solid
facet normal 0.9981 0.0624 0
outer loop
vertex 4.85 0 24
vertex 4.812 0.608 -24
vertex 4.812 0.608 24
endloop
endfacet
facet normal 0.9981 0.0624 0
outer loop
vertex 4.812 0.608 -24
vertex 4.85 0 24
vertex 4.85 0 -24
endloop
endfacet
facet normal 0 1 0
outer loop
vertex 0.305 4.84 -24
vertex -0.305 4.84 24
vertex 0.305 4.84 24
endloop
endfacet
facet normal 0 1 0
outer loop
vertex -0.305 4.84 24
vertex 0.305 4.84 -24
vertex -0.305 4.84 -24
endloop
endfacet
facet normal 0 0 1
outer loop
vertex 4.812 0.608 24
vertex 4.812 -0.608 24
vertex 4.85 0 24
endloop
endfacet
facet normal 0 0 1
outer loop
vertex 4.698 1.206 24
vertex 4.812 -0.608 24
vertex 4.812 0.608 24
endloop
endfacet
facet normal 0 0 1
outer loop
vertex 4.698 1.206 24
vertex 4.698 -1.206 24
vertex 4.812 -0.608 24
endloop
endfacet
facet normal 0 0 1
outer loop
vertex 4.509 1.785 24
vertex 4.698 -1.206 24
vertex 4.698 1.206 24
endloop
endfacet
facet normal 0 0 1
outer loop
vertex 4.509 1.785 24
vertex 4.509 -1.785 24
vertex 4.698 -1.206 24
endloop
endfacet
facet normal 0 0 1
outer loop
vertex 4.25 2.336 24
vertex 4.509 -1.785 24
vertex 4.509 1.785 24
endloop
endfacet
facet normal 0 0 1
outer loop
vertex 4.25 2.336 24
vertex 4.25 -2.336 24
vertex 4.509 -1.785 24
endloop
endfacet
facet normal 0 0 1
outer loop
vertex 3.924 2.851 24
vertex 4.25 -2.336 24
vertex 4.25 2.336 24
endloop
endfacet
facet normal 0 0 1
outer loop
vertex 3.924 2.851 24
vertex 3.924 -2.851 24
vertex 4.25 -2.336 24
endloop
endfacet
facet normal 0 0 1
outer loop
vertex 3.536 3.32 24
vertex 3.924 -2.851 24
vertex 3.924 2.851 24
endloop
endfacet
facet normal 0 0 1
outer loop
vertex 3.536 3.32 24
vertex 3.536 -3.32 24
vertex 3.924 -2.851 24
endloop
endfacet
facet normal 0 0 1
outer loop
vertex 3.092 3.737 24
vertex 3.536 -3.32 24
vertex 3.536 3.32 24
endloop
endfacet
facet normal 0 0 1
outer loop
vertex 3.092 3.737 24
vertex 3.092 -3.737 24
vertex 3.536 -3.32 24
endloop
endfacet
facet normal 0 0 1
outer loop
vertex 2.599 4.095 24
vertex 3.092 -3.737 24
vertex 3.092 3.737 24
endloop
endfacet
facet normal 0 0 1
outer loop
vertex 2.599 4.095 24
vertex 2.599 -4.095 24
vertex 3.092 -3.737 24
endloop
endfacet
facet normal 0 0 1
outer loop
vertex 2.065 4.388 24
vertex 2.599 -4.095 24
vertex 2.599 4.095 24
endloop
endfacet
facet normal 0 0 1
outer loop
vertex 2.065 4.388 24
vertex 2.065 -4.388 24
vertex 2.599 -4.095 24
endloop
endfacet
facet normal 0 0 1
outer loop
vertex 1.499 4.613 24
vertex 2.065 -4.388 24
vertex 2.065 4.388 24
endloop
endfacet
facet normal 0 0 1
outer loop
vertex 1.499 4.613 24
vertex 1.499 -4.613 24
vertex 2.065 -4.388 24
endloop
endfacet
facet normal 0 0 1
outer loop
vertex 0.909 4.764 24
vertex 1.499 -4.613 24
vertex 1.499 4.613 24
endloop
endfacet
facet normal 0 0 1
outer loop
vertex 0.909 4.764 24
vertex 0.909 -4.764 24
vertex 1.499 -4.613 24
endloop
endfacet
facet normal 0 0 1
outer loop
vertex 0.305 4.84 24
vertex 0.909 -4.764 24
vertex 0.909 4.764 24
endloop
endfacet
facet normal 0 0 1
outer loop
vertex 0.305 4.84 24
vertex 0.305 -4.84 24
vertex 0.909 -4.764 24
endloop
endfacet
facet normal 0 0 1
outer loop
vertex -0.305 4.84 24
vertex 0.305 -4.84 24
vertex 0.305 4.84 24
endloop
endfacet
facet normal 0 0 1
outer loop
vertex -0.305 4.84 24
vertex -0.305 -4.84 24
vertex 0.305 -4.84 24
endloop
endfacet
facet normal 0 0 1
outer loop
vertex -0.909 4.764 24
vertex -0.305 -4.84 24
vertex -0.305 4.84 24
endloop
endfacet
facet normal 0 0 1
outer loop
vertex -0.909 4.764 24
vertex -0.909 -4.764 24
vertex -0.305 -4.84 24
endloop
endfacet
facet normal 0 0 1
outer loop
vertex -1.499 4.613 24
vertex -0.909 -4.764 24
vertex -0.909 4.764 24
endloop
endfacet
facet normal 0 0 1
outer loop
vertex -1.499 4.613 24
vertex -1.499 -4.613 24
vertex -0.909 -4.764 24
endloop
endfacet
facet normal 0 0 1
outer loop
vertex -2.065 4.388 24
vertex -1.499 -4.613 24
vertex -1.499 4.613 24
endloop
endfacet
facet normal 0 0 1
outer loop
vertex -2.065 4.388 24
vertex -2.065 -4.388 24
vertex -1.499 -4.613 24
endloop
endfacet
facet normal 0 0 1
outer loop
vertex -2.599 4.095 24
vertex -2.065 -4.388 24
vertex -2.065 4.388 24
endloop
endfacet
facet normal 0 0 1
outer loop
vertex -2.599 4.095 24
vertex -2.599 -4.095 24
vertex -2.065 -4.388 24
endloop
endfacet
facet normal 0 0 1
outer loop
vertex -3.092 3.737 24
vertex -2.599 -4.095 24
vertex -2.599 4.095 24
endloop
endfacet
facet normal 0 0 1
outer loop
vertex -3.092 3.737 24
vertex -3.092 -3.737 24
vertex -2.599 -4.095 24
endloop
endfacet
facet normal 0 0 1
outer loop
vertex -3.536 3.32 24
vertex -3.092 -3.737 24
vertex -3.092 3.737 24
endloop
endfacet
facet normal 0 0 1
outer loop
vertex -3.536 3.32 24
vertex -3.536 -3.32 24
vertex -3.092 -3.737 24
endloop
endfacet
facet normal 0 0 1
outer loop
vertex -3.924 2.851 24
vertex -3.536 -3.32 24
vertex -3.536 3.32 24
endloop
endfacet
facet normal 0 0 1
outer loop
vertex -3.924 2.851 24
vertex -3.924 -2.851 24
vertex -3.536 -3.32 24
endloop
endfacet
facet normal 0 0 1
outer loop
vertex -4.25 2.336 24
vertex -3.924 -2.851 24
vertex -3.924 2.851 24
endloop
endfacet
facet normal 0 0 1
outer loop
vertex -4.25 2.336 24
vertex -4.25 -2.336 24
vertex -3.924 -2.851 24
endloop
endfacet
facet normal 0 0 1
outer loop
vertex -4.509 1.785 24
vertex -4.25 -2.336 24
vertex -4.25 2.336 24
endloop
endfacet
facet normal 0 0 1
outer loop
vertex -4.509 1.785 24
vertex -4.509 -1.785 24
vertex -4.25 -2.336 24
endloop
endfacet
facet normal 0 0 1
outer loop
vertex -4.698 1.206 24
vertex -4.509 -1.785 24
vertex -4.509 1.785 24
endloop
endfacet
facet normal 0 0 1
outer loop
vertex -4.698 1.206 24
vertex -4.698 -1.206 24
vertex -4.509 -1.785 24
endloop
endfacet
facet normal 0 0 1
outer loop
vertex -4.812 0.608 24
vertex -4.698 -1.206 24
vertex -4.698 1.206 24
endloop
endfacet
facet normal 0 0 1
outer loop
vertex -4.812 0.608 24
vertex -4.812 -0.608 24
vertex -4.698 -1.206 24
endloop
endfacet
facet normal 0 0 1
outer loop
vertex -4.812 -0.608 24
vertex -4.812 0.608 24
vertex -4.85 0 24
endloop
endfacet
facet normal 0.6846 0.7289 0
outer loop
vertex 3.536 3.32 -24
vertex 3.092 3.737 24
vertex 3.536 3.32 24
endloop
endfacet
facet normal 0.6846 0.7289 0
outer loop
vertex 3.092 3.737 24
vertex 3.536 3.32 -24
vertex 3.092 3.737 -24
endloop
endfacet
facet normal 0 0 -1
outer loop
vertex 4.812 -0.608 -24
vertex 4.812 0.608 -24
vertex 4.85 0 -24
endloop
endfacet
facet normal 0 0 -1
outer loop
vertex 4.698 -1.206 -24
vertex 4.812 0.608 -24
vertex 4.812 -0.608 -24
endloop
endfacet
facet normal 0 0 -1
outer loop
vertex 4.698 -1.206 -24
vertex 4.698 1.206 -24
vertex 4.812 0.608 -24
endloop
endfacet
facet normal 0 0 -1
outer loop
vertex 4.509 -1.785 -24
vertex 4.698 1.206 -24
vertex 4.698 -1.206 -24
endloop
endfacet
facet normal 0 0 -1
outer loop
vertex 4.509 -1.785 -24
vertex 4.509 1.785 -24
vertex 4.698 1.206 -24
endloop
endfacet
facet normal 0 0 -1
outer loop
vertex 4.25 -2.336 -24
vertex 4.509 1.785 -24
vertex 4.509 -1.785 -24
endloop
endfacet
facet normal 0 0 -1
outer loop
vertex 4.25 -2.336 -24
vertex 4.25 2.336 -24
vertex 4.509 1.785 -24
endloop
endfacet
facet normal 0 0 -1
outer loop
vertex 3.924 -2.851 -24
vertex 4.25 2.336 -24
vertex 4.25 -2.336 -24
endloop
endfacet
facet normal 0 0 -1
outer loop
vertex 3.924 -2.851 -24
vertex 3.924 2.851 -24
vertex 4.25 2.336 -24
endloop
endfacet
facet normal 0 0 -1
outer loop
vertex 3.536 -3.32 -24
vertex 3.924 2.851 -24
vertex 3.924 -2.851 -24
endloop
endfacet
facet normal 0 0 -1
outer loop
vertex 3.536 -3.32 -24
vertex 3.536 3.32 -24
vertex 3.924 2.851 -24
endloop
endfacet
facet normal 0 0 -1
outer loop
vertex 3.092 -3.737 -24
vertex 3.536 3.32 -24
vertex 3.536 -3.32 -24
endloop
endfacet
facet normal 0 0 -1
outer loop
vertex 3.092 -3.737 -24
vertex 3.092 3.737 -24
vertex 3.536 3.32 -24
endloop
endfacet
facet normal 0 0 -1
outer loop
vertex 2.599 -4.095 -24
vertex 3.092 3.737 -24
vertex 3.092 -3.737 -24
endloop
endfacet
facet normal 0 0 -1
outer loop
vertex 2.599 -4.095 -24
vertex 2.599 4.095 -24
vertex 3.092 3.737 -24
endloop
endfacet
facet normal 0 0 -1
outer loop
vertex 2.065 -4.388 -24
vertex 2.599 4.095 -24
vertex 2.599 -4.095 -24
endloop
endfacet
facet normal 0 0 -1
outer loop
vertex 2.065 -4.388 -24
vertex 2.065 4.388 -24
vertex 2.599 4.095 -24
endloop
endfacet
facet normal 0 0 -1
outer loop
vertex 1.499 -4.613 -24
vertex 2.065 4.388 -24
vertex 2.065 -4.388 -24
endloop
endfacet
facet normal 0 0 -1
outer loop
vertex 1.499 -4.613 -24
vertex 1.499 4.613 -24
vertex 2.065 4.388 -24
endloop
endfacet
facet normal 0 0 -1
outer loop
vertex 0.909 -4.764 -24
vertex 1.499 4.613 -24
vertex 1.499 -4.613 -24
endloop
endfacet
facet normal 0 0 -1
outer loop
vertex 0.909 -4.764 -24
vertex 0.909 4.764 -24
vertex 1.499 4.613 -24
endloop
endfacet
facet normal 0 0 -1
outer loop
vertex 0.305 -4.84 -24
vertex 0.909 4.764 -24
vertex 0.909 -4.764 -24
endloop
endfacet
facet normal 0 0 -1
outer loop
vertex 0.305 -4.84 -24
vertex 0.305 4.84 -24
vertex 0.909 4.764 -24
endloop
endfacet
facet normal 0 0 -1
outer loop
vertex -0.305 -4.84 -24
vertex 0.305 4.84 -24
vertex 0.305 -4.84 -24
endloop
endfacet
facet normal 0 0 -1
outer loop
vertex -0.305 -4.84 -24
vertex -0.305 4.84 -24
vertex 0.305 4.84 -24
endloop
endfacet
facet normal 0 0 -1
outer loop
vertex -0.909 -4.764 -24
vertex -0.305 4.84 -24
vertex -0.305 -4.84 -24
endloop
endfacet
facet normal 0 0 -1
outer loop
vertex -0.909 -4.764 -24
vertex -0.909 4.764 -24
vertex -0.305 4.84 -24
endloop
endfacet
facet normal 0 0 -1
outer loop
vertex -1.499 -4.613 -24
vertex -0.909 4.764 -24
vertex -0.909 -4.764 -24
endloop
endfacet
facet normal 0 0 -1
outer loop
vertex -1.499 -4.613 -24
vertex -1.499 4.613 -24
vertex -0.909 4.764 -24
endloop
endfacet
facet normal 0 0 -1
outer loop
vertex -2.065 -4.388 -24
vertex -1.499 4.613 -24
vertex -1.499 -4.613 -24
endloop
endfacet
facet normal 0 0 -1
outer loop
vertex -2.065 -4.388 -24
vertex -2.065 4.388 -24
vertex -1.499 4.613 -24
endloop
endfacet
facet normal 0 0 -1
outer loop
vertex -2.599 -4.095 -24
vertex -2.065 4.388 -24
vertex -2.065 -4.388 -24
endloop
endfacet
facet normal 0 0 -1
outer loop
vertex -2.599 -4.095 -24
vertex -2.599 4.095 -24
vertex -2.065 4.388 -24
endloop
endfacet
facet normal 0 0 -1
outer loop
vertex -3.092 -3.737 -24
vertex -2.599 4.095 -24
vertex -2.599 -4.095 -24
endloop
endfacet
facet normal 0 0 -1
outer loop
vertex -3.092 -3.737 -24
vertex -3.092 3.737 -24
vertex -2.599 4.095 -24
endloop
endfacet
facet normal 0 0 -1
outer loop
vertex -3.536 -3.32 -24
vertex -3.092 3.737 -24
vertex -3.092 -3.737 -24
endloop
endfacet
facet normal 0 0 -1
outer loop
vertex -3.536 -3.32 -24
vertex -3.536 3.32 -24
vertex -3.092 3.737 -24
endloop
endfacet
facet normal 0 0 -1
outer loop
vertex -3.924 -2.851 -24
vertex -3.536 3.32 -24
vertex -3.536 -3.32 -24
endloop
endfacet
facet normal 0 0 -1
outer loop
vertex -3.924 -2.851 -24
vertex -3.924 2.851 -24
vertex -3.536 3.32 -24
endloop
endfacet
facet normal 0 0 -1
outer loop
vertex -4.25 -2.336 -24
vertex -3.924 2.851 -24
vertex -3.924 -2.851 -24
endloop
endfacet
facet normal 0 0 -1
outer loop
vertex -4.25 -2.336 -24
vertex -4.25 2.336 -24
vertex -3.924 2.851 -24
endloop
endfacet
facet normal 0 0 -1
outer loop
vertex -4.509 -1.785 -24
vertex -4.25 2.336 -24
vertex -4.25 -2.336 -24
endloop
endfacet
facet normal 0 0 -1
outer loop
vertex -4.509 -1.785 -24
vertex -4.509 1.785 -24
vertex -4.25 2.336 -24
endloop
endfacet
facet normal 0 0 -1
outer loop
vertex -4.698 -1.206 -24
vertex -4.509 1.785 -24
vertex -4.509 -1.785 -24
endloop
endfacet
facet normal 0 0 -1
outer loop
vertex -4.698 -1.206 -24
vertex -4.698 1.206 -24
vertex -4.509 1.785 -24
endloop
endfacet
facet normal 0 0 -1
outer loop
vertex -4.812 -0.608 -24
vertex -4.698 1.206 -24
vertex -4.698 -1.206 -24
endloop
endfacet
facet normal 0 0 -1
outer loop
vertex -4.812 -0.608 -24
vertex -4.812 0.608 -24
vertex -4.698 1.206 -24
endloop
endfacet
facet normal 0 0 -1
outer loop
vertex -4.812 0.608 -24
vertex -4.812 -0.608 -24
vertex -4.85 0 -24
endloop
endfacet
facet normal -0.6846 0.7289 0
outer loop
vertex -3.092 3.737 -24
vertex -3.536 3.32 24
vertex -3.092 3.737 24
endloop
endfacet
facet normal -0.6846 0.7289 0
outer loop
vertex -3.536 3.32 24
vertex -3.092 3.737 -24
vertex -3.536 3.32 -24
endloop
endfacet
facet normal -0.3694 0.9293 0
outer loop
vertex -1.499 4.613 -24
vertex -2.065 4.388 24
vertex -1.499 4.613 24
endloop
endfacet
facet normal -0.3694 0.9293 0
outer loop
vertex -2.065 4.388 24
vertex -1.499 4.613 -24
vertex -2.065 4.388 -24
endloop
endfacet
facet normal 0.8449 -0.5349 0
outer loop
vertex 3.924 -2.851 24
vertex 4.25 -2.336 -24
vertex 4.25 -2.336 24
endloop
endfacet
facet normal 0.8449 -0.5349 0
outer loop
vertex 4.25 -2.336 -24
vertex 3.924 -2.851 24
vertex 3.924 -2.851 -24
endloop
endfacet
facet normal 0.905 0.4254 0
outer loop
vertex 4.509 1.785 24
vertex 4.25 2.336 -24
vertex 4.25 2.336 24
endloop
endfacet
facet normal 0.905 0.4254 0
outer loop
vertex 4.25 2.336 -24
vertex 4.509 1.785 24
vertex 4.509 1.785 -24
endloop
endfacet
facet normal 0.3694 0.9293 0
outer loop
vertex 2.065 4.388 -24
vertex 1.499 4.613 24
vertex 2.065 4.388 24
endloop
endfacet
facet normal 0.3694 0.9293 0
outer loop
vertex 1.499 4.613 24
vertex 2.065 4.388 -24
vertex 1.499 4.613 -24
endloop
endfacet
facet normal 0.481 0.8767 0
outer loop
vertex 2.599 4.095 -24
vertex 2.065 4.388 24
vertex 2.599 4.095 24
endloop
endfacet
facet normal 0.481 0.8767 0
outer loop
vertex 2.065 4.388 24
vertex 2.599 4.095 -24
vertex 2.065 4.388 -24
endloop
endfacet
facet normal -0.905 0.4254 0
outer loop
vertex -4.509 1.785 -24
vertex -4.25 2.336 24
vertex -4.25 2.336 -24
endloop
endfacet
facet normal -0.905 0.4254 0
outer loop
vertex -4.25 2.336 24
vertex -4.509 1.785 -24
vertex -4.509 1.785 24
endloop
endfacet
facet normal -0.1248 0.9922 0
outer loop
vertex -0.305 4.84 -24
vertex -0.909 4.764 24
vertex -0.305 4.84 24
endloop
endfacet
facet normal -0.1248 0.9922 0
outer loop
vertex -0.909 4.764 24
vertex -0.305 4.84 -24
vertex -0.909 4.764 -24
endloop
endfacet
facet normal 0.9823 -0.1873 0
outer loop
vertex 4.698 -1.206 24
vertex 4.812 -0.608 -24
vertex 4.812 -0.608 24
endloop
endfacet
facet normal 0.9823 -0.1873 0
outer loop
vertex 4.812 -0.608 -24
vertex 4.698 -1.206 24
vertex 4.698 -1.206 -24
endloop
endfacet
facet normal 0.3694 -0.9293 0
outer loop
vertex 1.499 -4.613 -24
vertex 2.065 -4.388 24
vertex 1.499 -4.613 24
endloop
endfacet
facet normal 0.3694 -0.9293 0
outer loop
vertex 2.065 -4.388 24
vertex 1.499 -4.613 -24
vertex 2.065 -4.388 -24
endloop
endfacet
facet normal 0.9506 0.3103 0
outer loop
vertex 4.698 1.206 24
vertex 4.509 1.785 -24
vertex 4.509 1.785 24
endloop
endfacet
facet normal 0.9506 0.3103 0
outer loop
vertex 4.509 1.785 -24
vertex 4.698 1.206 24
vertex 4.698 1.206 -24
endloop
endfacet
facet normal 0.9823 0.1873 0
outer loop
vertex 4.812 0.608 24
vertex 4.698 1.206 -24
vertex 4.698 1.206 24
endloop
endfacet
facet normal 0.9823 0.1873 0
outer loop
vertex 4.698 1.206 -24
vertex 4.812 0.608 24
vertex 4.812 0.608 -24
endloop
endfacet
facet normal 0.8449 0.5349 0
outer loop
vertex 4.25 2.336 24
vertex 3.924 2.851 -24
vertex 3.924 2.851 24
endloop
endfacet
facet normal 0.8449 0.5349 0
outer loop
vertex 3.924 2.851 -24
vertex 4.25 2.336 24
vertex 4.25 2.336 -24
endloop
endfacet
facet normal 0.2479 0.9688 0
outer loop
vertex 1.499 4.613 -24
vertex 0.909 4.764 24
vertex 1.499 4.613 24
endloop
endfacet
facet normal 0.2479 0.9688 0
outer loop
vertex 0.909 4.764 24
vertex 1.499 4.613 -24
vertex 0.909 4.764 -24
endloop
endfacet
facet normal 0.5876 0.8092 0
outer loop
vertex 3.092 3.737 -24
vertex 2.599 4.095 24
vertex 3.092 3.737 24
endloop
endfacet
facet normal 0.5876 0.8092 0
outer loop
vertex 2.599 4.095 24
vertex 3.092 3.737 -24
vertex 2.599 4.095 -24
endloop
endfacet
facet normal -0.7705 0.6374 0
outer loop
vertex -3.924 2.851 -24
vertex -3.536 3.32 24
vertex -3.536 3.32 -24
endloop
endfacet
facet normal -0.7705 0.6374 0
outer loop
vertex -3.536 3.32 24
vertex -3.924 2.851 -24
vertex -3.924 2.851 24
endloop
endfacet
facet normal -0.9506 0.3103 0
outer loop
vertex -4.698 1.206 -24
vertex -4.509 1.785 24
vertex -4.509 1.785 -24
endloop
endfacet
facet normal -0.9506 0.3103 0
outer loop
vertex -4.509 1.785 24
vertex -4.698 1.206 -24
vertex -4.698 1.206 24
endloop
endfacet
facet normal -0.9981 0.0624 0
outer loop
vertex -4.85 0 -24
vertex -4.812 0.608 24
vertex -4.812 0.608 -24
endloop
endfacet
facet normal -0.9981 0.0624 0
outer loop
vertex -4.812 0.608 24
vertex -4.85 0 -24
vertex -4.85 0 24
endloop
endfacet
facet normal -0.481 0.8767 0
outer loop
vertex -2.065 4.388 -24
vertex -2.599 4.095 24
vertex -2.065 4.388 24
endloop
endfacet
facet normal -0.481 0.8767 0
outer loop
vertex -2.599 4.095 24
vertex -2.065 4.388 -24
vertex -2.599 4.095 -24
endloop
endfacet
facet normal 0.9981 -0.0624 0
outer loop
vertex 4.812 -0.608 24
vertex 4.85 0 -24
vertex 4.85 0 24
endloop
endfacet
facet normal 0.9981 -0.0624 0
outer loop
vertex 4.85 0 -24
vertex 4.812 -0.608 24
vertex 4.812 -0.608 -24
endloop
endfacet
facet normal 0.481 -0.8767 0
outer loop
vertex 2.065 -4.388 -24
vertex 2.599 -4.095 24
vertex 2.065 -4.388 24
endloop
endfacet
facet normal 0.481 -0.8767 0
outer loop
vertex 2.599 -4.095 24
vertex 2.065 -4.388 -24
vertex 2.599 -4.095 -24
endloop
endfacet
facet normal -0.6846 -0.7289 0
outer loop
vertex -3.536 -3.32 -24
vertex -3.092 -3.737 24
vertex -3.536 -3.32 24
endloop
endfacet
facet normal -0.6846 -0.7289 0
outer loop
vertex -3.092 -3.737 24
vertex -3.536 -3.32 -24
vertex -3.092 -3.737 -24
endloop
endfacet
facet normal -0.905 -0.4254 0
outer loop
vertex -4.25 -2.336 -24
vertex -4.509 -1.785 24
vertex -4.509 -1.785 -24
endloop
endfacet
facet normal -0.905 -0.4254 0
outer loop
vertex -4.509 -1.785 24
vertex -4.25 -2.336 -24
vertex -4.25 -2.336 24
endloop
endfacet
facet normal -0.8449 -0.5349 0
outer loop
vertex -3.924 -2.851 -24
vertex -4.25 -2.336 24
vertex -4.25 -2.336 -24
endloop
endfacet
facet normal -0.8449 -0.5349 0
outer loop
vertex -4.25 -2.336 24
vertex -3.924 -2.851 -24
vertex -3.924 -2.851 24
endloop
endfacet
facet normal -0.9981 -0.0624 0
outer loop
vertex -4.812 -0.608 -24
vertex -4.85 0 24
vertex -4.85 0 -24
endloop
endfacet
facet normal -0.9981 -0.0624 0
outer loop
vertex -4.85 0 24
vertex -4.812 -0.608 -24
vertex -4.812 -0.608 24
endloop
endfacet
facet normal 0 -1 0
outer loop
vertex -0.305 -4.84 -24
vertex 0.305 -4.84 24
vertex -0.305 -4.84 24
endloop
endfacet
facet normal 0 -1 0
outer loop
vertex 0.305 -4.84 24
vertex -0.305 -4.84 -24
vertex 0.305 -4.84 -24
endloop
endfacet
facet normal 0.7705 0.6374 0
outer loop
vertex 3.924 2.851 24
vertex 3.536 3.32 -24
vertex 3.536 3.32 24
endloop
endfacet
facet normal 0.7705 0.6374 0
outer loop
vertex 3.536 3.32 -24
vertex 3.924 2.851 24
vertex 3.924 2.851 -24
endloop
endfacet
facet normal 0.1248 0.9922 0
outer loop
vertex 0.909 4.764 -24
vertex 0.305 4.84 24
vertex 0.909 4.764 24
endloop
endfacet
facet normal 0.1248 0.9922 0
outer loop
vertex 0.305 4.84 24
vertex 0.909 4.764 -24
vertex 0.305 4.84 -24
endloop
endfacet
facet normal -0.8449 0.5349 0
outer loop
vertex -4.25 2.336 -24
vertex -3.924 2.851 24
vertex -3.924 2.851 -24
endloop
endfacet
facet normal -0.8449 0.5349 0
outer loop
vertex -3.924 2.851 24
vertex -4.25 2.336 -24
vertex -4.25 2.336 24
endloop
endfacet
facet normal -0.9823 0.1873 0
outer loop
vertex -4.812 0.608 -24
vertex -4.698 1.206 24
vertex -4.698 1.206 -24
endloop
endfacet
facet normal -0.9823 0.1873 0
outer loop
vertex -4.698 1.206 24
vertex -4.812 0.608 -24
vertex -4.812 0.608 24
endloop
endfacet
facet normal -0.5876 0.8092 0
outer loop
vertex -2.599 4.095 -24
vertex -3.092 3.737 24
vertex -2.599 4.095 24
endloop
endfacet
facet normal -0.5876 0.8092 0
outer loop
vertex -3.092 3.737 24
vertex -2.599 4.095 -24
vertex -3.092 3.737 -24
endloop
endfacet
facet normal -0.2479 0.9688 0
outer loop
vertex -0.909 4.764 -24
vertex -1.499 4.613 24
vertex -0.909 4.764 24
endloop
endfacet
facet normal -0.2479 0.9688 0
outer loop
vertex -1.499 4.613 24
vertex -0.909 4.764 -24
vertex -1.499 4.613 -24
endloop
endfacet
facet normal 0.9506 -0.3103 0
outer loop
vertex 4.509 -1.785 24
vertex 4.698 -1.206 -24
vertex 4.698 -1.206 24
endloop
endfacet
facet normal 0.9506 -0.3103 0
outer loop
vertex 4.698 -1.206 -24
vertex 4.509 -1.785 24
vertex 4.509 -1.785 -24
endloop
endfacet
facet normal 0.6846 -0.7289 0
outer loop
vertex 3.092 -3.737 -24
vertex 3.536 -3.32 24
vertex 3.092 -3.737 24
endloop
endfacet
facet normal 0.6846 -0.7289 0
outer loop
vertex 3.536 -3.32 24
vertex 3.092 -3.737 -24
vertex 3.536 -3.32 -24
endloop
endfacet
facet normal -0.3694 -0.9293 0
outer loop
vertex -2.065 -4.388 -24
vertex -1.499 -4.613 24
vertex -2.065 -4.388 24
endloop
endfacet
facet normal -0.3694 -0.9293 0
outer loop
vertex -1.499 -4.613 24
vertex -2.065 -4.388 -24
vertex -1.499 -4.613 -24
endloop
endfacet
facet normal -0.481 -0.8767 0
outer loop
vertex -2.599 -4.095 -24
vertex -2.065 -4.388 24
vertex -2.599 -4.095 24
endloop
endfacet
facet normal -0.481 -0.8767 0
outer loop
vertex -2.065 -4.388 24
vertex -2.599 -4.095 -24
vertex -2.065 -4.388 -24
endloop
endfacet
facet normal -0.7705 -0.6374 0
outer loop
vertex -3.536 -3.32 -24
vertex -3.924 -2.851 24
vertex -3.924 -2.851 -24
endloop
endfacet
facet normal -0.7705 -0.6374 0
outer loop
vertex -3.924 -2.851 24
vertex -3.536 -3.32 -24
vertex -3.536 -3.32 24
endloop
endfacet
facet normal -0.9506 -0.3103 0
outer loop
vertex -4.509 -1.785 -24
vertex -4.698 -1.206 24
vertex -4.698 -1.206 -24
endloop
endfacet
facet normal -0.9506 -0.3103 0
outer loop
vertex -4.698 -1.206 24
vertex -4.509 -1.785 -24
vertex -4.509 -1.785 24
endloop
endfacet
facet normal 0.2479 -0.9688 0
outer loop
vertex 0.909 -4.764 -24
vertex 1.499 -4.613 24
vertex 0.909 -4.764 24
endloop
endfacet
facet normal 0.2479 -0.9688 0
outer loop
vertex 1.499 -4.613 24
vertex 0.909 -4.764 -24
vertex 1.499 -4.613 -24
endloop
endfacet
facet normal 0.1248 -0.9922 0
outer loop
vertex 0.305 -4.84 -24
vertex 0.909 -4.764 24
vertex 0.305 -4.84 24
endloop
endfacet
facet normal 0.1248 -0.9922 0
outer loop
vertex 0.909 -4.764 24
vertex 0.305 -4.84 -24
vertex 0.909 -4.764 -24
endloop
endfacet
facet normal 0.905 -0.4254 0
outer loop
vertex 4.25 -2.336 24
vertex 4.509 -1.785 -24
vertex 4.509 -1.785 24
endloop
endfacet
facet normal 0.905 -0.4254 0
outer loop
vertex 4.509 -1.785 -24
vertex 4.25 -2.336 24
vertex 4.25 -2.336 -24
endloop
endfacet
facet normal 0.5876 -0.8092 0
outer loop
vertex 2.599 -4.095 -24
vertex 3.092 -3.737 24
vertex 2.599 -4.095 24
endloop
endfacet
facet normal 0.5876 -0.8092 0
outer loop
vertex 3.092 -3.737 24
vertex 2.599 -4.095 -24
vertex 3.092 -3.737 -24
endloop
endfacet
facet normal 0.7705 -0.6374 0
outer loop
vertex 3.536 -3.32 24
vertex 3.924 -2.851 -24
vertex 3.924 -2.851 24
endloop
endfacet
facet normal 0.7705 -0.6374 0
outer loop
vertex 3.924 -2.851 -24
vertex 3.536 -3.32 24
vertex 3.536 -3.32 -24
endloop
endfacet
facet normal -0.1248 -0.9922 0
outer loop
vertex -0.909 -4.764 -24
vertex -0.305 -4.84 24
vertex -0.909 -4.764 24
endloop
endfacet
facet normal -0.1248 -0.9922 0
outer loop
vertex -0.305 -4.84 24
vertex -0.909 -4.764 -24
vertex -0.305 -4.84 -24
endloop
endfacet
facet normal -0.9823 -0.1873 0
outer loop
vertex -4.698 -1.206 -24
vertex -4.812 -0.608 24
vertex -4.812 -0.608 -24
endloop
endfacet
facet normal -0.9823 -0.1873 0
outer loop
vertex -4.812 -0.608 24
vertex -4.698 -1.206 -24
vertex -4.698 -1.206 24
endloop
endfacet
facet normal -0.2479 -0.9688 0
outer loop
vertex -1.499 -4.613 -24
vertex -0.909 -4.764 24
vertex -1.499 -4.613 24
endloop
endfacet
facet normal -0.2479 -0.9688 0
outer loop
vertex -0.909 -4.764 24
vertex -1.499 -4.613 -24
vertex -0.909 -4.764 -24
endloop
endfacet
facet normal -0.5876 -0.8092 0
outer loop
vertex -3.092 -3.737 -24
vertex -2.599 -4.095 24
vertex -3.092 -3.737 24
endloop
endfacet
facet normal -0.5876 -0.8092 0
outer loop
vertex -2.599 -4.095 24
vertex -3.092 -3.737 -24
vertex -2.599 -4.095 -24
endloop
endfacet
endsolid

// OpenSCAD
$fn = 50;


difference() {
	union() {
		translate(v = [0, 0, -24.0000000000]) {
			cylinder(h = 48, r = 4.8500000000);
		}
	}
	union() {
		translate(v = [0, 0, -100.0000000000]) {
			cylinder(h = 200, r = 0);
		}
	}
}
